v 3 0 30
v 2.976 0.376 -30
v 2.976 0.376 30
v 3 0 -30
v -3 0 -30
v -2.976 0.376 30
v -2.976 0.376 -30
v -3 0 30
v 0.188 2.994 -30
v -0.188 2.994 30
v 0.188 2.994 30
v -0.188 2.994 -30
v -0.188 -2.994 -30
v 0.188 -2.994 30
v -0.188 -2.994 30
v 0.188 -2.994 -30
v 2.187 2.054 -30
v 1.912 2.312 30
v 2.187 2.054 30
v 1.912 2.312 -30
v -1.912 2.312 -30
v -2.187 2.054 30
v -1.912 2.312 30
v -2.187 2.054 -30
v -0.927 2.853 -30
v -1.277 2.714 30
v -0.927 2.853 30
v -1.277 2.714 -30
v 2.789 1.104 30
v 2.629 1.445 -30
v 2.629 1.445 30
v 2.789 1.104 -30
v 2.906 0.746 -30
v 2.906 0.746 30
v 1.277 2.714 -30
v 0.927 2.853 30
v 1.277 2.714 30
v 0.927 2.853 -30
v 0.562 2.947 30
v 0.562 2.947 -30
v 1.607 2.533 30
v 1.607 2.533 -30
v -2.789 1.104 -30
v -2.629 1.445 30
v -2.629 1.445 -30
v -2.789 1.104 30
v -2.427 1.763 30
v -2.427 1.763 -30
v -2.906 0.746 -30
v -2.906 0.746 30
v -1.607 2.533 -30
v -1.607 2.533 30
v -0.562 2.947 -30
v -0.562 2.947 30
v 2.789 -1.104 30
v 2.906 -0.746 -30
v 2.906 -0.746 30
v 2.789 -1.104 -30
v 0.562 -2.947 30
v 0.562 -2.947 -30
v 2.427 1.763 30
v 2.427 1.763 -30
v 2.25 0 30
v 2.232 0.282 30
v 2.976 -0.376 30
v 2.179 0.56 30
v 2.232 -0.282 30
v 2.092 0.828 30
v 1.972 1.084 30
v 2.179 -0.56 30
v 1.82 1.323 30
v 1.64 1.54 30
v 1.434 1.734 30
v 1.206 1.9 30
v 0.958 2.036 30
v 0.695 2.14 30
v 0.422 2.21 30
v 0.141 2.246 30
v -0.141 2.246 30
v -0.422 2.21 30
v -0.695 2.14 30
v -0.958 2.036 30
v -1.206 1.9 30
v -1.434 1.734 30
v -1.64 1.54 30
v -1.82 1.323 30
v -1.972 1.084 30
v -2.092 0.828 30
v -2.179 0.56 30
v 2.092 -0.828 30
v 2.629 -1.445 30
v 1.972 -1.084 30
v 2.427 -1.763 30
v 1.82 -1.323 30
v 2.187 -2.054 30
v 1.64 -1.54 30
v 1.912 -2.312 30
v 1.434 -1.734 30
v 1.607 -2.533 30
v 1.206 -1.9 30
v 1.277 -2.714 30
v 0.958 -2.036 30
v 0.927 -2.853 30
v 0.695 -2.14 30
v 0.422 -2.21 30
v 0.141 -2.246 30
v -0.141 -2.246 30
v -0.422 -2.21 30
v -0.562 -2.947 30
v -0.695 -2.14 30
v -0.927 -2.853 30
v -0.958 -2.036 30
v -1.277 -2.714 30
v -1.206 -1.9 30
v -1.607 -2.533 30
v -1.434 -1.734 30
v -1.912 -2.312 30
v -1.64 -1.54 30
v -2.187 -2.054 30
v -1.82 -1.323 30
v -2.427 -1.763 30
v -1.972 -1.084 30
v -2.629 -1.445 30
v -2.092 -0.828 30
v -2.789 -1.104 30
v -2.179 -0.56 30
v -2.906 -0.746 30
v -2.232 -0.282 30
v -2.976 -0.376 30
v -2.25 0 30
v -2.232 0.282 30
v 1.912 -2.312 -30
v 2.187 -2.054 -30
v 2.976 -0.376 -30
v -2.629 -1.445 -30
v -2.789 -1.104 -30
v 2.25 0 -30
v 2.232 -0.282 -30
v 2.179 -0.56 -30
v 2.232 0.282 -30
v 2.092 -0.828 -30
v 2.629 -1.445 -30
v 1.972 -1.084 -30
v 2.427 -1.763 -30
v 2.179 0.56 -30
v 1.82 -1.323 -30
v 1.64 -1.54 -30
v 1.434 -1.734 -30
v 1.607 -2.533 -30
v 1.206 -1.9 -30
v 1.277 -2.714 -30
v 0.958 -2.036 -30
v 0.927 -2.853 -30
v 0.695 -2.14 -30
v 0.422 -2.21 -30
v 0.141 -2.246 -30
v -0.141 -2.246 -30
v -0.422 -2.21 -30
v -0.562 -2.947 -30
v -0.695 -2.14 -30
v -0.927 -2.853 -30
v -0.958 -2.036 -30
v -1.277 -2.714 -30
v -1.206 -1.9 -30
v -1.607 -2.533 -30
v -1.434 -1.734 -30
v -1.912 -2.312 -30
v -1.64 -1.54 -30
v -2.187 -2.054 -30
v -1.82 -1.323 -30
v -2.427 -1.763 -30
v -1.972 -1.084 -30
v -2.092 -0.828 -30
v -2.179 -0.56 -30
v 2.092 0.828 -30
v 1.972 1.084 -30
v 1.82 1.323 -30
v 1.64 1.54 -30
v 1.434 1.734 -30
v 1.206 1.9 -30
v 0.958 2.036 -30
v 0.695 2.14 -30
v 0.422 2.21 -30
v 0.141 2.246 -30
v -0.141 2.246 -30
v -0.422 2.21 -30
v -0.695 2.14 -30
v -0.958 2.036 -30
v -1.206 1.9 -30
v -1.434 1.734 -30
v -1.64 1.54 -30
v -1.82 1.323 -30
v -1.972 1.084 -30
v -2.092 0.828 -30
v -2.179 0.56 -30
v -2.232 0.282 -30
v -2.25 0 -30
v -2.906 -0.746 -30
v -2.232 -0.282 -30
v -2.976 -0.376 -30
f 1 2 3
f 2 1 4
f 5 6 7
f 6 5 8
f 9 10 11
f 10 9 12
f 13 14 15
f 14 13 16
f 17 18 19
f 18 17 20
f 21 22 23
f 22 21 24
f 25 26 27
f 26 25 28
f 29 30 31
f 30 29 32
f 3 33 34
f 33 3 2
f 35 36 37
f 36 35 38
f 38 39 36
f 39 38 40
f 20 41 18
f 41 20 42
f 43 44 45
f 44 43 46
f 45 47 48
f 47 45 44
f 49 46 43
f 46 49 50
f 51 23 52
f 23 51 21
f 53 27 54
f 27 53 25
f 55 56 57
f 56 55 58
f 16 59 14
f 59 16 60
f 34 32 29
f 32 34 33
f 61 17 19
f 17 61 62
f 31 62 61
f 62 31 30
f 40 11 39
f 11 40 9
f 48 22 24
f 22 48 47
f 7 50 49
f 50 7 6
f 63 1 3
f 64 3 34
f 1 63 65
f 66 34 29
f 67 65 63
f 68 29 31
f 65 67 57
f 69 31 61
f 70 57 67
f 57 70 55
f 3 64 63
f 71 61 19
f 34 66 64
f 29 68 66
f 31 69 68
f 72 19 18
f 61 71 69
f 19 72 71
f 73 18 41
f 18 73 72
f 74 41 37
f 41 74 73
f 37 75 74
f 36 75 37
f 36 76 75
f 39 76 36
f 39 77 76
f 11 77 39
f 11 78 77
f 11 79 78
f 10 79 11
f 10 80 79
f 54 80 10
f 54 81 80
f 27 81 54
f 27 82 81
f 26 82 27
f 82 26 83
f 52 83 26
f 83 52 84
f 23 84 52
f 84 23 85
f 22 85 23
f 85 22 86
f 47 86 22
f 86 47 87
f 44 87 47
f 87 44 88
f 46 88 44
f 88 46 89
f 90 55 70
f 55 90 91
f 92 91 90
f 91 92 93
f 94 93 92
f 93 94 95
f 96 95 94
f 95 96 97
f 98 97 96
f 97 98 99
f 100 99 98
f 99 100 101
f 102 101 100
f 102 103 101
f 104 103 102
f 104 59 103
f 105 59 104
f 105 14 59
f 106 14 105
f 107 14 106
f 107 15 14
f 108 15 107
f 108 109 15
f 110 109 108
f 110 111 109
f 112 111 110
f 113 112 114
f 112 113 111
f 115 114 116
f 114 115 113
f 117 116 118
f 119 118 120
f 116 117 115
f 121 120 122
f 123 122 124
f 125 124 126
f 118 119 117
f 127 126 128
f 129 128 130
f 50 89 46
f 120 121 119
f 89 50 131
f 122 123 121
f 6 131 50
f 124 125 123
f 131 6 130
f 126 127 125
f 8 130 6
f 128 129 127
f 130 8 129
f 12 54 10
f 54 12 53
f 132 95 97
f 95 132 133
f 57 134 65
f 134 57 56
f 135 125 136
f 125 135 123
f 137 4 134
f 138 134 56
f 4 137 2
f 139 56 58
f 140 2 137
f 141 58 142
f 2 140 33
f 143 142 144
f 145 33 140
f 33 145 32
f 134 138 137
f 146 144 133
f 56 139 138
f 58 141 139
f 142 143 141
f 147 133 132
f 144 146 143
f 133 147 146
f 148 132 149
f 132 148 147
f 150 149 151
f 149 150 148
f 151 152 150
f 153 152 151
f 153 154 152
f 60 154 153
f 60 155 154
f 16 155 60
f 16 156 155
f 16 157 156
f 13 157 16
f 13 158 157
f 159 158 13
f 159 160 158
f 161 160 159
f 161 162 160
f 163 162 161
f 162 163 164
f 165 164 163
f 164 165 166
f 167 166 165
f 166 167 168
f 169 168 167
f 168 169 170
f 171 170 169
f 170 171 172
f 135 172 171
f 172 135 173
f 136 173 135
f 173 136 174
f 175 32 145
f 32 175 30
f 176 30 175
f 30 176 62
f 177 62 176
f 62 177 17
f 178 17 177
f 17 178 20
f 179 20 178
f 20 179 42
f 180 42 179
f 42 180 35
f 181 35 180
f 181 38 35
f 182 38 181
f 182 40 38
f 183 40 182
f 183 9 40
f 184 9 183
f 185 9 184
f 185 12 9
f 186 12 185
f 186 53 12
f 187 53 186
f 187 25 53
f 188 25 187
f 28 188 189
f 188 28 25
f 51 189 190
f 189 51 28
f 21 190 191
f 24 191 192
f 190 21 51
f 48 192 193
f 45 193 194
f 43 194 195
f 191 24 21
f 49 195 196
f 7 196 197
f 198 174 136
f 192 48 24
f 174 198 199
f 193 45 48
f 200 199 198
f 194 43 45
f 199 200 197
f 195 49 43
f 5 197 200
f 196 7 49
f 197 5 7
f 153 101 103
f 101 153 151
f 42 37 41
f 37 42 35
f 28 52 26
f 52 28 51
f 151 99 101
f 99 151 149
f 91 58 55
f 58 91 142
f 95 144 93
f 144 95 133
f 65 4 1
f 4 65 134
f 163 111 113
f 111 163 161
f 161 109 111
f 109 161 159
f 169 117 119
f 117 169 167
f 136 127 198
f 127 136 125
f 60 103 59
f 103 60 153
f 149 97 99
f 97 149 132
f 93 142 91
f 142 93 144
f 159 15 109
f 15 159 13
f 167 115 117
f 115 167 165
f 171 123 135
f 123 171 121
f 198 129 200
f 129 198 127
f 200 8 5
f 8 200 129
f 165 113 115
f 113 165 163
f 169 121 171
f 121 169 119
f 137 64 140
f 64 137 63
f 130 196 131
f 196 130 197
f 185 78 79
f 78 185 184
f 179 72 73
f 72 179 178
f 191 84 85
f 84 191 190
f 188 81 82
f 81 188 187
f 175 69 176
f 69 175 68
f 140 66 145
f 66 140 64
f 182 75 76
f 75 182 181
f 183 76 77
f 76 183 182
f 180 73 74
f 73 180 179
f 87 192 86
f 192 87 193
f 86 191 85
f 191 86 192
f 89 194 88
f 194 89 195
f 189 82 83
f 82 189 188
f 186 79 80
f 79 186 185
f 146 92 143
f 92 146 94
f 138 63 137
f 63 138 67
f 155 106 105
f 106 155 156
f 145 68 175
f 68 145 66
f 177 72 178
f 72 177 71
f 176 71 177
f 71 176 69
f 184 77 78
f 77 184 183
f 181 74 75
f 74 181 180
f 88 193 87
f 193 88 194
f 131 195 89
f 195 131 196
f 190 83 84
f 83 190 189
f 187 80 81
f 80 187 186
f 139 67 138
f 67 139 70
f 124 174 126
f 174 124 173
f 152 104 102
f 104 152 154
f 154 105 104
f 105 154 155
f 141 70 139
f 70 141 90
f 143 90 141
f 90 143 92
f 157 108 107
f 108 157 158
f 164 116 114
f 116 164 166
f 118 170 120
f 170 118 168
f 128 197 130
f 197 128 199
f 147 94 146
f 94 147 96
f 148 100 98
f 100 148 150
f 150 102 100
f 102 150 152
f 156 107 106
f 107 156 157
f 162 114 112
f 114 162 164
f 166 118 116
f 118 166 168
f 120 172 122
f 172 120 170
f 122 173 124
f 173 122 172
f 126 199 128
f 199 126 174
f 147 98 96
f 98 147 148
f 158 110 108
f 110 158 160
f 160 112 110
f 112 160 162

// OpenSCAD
$fn = 50;


difference() {
	union() {
		translate(v = [0, 0, -30.0000000000]) {
			cylinder(h = 60, r = 3.0000000000);
		}
	}
	union() {
		translate(v = [0, 0, -100.0000000000]) {
			cylinder(h = 200, r = 2.2500000000);
		}
	}
}
